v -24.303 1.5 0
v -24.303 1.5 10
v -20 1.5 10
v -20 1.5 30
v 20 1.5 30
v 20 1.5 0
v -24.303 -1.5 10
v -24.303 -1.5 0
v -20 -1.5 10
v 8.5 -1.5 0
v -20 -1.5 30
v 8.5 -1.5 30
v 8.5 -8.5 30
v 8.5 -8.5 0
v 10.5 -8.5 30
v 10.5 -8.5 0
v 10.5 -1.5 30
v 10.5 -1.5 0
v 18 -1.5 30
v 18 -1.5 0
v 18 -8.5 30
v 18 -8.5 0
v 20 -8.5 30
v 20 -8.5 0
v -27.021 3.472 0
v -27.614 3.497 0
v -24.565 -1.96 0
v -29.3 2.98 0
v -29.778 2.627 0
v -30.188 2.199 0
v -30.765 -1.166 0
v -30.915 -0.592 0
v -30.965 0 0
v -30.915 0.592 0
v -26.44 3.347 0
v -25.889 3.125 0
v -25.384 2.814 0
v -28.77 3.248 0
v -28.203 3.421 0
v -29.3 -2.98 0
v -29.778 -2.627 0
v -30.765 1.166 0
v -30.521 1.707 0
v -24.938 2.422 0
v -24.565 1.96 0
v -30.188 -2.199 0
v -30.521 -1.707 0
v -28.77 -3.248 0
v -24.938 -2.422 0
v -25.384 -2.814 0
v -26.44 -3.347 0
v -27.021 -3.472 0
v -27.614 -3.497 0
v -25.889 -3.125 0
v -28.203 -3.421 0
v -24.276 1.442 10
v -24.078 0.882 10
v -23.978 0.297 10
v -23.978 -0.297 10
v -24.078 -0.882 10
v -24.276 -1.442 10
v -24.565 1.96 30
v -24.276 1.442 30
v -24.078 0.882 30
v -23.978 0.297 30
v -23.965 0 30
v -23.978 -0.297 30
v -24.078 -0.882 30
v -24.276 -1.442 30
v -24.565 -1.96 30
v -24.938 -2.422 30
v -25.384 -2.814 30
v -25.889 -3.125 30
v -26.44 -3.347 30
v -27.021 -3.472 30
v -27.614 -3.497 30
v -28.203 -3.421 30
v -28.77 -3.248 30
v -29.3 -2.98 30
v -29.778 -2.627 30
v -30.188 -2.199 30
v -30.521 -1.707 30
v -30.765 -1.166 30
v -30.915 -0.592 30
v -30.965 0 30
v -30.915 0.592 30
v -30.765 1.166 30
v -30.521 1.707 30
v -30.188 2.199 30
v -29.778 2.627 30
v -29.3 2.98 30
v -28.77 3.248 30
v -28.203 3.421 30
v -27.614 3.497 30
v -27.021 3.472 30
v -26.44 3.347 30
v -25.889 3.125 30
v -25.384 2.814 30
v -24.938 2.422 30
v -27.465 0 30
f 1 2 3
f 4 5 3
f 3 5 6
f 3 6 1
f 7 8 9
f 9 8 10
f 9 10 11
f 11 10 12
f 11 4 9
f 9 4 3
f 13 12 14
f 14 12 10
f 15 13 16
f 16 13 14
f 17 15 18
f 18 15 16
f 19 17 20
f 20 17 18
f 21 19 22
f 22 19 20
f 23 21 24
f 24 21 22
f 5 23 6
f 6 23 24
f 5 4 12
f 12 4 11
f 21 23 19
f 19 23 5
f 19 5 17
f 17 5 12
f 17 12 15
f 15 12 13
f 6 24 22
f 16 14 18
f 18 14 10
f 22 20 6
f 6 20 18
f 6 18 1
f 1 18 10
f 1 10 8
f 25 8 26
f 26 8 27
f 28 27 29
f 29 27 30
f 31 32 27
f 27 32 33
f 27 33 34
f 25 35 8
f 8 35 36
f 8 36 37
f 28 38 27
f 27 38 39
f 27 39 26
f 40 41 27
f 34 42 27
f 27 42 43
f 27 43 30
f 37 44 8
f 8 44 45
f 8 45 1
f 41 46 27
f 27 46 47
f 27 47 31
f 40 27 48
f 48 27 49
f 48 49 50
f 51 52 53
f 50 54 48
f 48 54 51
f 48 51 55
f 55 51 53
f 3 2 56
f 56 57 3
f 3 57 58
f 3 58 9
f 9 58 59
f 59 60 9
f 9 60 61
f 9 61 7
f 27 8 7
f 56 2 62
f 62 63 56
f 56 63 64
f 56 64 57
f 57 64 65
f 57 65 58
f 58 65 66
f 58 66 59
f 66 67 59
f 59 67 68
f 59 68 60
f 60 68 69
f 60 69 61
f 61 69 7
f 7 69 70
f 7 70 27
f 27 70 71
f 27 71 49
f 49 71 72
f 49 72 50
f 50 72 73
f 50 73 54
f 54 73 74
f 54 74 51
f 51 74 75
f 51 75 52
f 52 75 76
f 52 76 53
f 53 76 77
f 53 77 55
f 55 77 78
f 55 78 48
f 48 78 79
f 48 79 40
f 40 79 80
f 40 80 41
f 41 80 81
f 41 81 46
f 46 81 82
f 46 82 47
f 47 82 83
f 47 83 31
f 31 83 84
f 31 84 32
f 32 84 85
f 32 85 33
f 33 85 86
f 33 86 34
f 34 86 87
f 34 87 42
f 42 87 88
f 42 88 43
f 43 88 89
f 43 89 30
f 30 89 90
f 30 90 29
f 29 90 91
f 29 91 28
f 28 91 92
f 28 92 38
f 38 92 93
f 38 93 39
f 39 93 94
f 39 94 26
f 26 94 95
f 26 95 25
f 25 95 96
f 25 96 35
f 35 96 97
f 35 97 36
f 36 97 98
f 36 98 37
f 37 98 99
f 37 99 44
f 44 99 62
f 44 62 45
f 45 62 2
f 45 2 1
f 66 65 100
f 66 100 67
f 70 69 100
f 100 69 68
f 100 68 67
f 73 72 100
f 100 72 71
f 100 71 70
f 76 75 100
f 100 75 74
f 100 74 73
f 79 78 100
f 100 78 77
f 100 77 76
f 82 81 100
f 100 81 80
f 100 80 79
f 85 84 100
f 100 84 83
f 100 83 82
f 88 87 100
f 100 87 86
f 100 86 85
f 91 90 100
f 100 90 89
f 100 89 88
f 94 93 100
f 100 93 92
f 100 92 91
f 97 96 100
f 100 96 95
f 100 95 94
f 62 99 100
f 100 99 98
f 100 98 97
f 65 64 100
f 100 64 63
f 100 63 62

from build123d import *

# Parameters (mm, degrees)
BOSS_EXTRUDE1_DEPTH = 30
SKETCH3_W           = 6
SKETCH3_H           = 3
BOSS_EXTRUDE2_DEPTH = 10
SKETCH4_R           = 3.5
BOSS_EXTRUDE3_DEPTH = 30


with BuildPart() as part:
    # Sketch2 → Boss-Extrude1 (new body)
    with BuildSketch(Plane.XY):
        Polygon((-20, -1.5), (8.5, -1.5), (8.5, -8.5), (10.5, -8.5), (10.5, -1.5), (18, -1.5), (18, -8.5), (20, -8.5), (20, -1.5), (20, 1.5), (-20, 1.5), align=None)
    extrude(amount=BOSS_EXTRUDE1_DEPTH)

    # Sketch3 → Boss-Extrude2 (add)
    with BuildSketch(Plane.XY):
        with Locations((-23, 0)):
            Rectangle(SKETCH3_W, SKETCH3_H)
    extrude(amount=BOSS_EXTRUDE2_DEPTH)

    # Sketch4 → Boss-Extrude3 (add)
    with BuildSketch(Plane.XY):
        with Locations((-27.465142918, 0)):
            Circle(SKETCH4_R)
    extrude(amount=BOSS_EXTRUDE3_DEPTH)


solid = part.part
